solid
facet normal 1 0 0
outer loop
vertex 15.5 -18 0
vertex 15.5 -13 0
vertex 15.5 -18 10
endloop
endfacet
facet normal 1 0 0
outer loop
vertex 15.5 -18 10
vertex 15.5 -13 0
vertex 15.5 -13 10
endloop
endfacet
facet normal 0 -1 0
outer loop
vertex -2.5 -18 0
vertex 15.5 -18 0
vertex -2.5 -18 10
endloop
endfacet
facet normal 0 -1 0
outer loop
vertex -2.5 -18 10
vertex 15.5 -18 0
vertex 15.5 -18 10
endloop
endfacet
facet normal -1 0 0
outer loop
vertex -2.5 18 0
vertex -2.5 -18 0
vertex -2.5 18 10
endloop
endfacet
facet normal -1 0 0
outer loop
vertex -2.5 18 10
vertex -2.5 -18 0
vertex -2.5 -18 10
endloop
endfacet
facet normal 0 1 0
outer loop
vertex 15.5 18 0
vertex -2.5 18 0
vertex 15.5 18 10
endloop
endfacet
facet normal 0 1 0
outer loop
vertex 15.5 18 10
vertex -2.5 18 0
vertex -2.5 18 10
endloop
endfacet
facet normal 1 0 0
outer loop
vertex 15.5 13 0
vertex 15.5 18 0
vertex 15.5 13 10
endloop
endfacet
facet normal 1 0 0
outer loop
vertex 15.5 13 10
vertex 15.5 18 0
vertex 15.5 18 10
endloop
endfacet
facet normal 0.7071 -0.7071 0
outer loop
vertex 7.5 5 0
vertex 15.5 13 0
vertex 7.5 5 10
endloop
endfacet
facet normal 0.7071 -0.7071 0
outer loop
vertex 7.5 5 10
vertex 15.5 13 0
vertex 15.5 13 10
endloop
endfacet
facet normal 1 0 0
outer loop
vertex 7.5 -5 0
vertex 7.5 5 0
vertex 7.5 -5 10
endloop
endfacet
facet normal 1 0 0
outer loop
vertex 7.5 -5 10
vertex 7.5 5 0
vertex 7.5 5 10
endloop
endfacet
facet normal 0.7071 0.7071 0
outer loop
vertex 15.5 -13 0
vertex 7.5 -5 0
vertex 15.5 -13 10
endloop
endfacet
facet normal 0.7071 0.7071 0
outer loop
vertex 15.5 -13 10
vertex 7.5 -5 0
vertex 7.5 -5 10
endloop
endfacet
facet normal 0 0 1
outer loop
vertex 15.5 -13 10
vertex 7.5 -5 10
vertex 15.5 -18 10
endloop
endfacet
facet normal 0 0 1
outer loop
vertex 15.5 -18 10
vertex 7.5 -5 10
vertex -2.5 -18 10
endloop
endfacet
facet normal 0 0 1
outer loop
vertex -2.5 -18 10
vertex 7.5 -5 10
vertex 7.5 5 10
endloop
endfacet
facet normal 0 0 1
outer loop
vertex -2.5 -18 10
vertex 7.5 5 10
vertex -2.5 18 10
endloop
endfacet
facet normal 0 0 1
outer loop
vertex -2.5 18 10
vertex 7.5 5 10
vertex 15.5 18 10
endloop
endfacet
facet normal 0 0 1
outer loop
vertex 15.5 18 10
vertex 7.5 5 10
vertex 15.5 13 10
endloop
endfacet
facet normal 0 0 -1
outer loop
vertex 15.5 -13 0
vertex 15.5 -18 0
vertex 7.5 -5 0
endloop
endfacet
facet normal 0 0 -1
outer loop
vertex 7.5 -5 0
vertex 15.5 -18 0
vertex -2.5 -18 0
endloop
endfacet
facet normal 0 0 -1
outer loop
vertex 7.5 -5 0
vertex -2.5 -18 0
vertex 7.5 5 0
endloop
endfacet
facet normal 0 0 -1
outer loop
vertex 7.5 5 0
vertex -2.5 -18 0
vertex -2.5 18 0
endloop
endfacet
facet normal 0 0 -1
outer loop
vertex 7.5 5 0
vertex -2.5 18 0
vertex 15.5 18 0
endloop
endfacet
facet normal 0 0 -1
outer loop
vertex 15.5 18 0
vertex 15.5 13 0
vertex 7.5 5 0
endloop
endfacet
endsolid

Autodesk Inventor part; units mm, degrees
ref_plane "YZ Plane" through (0, 0, 0) normal (1, 0, 0) x (0, 1, 0)
ref_plane "XZ Plane" through (0, 0, 0) normal (0, 1, 0) x (-1, 0, 0)
ref_plane "XY Plane" through (0, 0, 0) normal (0, 0, 1) x (1, 0, 0)
sketch "Sketch1" plane through (0, 0, 0) normal (0, 0, 1) x (1, 0, 0)
  line L0 (-2.5, -18) -> (2.5, -18)
  line L1 (2.5, -18) -> (2.5, 18)
  line L2 (2.5, 18) -> (-2.5, 18)
  line L3 (-2.5, 18) -> (-2.5, -18)
  line L4 (-2.5, -18) -> (2.5, 18) construction
  line L5 (2.5, -18) -> (-2.5, 18) construction
  line L6 (2.5, 0) -> (20.5, 18)
  line L7 (20.5, 18) -> (2.5, 18)
  line L8 (-7.1, 0) -> (25.1, 0) projected
  line L9 (2.5, 0) -> (20.5, -18)
  line L10 (20.5, -18) -> (2.5, -18)
  line L11 (15.5, 18) -> (15.5, 13)
  line L12 (15.5, -18) -> (15.5, -13)
  line L13 (7.5, 5) -> (7.5, -5)
  point P0 (0, 0)
  point P1 (15.5, -13)
  dimension "d1" = 5
  dimension "d3" = 45
  dimension "d4" = 18
  dimension "d5" = 5
  dimension "d6" = 5
extrude "Extrusion1" add sketch "Sketch1" along normal blind 10 contours L3 L8 L1 L0 | L1 L9 L12 L10 | L3 L2 L1 L8 | L1 L7 L11 L6 | L6 L13 L8 | L8 L13 L9
properties part number "_3DPrint"
